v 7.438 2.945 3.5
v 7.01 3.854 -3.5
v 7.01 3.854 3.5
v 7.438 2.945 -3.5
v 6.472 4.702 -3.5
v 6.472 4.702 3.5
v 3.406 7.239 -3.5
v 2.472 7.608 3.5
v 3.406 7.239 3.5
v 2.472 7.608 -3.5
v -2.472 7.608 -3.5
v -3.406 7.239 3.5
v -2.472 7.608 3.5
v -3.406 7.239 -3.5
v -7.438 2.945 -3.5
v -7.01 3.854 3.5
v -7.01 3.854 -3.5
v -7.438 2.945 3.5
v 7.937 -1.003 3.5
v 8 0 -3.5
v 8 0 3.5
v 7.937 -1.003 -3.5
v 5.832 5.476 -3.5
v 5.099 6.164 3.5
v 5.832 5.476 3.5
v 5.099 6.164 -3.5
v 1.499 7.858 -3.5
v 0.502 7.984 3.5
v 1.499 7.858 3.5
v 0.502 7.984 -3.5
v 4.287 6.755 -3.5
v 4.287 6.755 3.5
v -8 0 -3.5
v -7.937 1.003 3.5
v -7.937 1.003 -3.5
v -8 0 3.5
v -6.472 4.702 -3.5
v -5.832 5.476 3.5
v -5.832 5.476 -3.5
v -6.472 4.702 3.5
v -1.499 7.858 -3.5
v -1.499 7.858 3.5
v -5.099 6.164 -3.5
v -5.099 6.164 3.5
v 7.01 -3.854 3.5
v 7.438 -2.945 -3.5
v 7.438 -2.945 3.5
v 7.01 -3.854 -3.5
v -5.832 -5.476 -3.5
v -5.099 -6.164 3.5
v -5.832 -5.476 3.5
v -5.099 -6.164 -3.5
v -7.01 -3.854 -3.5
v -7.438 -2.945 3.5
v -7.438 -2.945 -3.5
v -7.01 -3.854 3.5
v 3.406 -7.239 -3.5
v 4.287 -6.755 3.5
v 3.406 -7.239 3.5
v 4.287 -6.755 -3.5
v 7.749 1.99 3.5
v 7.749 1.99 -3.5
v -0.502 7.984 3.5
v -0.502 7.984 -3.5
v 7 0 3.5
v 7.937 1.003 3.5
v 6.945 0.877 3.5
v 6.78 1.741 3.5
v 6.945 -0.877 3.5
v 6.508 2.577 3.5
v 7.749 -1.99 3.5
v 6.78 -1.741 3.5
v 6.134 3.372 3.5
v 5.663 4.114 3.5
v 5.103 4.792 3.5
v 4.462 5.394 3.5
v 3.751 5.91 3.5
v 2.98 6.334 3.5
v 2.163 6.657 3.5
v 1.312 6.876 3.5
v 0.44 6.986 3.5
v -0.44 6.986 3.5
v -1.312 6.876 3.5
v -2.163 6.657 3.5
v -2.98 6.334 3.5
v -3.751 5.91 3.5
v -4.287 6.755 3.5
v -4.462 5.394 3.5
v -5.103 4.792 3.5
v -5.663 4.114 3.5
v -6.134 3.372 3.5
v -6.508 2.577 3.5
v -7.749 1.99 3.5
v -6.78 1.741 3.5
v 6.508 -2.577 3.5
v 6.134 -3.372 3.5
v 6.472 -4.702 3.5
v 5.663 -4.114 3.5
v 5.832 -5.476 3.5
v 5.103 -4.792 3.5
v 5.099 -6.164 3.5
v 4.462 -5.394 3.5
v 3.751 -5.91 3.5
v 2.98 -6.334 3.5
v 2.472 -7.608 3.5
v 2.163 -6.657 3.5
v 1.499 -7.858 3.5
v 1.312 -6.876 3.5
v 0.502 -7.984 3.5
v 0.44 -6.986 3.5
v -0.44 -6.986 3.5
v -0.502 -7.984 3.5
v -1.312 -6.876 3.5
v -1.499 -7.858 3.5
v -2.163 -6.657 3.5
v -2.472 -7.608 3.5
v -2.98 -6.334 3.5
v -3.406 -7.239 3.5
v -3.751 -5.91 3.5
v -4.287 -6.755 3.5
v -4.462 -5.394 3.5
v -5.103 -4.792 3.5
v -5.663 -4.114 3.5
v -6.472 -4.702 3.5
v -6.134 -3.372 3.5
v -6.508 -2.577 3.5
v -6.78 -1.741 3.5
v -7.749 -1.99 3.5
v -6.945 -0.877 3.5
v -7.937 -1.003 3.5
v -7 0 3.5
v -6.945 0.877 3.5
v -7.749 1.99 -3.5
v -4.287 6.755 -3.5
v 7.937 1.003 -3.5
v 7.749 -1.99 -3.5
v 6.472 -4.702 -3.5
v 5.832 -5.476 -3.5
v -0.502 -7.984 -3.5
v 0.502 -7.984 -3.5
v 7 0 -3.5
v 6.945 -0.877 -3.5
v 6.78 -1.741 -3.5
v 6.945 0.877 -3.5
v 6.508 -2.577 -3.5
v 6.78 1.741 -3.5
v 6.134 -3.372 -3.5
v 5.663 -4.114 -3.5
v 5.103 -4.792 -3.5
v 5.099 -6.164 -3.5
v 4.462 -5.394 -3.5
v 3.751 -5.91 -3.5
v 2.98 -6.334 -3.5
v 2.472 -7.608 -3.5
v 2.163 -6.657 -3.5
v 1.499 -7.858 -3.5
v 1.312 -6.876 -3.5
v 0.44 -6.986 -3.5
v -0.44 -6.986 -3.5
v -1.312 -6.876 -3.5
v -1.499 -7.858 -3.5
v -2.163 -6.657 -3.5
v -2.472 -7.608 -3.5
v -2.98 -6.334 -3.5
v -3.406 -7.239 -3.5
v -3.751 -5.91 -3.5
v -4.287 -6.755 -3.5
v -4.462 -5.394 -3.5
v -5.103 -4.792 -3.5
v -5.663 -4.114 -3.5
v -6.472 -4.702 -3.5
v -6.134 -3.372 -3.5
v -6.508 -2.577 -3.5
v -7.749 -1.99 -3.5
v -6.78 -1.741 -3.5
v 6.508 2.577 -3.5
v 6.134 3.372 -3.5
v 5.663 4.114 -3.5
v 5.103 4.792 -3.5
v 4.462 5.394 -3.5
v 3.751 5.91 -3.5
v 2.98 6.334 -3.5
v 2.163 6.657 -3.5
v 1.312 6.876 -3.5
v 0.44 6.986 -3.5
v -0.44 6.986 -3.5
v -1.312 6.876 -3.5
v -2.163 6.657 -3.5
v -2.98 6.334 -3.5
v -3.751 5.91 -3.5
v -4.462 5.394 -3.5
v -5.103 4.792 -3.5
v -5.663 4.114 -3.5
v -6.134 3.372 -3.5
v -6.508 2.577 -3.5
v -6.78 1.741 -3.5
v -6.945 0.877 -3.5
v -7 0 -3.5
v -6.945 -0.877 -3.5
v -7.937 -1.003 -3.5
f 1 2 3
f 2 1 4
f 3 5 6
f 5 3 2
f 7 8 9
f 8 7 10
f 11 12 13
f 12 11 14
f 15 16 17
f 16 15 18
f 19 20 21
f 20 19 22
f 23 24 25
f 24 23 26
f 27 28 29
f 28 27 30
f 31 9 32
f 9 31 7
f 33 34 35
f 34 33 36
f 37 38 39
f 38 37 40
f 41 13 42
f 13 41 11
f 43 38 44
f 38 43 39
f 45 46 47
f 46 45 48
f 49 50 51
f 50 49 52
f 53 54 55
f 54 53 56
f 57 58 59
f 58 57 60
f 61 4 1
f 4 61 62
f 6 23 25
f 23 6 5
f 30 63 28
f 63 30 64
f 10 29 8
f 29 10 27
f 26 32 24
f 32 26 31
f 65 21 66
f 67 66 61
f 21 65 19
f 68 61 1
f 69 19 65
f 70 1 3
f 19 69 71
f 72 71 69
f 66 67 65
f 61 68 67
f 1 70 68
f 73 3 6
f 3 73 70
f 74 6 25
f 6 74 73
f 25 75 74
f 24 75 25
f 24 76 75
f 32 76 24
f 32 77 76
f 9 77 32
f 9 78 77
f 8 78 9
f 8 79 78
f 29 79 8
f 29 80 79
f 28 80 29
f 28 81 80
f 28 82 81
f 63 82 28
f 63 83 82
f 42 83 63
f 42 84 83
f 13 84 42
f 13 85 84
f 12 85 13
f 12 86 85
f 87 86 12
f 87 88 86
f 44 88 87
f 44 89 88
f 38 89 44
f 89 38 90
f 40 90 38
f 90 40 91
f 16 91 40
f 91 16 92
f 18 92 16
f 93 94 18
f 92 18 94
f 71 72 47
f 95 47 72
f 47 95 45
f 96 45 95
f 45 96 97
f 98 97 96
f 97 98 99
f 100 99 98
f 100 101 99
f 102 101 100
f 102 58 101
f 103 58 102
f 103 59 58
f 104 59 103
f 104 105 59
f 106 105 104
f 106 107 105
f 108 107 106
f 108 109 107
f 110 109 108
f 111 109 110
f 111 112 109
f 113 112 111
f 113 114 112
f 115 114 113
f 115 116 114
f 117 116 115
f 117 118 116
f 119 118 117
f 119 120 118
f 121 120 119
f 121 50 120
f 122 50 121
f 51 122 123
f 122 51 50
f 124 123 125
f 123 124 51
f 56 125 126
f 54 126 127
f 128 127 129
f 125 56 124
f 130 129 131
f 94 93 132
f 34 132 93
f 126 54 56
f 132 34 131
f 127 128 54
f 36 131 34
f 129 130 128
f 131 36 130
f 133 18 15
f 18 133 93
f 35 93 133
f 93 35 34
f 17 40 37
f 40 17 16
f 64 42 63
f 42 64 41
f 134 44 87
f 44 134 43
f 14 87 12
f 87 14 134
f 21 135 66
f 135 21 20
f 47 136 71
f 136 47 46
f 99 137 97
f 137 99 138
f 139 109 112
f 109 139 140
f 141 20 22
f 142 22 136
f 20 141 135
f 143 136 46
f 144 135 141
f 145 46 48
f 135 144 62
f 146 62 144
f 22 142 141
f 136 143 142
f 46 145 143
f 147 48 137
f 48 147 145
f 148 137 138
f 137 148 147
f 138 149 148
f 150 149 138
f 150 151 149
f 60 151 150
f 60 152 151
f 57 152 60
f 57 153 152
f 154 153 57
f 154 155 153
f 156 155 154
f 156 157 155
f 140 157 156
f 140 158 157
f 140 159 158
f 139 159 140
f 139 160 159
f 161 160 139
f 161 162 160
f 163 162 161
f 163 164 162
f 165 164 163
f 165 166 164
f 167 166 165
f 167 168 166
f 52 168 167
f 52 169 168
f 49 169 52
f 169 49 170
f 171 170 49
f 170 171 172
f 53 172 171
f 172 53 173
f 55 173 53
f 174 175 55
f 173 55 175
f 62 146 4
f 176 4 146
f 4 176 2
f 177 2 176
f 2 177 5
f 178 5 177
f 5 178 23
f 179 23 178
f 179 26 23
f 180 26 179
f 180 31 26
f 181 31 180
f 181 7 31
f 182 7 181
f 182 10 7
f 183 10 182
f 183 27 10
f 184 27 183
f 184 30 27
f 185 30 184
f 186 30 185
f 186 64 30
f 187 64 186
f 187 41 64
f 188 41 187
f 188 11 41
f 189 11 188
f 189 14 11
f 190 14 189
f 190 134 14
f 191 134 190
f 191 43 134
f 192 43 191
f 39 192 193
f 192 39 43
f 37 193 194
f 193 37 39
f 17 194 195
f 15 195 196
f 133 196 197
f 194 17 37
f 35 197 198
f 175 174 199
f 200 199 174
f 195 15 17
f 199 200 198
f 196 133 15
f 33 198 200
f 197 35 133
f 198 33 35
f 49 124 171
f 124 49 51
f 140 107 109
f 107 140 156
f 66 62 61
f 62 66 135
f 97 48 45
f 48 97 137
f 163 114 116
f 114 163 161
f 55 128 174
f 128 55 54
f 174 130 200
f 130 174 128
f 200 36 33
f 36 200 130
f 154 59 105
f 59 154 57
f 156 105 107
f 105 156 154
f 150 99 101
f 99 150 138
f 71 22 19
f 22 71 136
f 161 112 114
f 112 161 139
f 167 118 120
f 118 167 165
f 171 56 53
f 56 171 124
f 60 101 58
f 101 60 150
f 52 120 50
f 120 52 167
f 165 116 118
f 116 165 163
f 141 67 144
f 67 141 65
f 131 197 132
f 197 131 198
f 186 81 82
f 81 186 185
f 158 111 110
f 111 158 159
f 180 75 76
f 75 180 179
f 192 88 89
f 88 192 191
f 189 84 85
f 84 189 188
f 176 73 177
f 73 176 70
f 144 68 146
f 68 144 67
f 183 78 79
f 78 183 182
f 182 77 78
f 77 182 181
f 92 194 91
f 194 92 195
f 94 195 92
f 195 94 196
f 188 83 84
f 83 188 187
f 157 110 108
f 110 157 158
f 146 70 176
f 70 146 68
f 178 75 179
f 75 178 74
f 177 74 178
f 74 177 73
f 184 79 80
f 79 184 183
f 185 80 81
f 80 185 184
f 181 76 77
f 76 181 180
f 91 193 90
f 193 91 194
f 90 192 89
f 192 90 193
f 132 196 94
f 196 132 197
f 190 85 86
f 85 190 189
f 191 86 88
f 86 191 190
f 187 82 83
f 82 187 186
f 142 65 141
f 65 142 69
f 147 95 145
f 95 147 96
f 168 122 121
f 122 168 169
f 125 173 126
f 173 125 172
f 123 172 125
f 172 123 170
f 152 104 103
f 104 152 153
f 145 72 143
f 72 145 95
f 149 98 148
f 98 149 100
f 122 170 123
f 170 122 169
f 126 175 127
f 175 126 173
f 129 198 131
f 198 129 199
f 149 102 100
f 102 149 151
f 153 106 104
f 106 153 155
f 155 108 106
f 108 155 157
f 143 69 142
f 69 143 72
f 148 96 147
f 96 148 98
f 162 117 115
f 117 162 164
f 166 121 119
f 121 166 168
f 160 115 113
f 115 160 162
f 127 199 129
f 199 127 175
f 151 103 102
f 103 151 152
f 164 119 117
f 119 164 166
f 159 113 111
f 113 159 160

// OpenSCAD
$fn = 50;


difference() {
	union() {
		translate(v = [0, 0, -3.5000000000]) {
			cylinder(h = 7, r = 8.0000000000);
		}
	}
	union() {
		translate(v = [0, 0, -100.0000000000]) {
			cylinder(h = 200, r = 7);
		}
	}
}
